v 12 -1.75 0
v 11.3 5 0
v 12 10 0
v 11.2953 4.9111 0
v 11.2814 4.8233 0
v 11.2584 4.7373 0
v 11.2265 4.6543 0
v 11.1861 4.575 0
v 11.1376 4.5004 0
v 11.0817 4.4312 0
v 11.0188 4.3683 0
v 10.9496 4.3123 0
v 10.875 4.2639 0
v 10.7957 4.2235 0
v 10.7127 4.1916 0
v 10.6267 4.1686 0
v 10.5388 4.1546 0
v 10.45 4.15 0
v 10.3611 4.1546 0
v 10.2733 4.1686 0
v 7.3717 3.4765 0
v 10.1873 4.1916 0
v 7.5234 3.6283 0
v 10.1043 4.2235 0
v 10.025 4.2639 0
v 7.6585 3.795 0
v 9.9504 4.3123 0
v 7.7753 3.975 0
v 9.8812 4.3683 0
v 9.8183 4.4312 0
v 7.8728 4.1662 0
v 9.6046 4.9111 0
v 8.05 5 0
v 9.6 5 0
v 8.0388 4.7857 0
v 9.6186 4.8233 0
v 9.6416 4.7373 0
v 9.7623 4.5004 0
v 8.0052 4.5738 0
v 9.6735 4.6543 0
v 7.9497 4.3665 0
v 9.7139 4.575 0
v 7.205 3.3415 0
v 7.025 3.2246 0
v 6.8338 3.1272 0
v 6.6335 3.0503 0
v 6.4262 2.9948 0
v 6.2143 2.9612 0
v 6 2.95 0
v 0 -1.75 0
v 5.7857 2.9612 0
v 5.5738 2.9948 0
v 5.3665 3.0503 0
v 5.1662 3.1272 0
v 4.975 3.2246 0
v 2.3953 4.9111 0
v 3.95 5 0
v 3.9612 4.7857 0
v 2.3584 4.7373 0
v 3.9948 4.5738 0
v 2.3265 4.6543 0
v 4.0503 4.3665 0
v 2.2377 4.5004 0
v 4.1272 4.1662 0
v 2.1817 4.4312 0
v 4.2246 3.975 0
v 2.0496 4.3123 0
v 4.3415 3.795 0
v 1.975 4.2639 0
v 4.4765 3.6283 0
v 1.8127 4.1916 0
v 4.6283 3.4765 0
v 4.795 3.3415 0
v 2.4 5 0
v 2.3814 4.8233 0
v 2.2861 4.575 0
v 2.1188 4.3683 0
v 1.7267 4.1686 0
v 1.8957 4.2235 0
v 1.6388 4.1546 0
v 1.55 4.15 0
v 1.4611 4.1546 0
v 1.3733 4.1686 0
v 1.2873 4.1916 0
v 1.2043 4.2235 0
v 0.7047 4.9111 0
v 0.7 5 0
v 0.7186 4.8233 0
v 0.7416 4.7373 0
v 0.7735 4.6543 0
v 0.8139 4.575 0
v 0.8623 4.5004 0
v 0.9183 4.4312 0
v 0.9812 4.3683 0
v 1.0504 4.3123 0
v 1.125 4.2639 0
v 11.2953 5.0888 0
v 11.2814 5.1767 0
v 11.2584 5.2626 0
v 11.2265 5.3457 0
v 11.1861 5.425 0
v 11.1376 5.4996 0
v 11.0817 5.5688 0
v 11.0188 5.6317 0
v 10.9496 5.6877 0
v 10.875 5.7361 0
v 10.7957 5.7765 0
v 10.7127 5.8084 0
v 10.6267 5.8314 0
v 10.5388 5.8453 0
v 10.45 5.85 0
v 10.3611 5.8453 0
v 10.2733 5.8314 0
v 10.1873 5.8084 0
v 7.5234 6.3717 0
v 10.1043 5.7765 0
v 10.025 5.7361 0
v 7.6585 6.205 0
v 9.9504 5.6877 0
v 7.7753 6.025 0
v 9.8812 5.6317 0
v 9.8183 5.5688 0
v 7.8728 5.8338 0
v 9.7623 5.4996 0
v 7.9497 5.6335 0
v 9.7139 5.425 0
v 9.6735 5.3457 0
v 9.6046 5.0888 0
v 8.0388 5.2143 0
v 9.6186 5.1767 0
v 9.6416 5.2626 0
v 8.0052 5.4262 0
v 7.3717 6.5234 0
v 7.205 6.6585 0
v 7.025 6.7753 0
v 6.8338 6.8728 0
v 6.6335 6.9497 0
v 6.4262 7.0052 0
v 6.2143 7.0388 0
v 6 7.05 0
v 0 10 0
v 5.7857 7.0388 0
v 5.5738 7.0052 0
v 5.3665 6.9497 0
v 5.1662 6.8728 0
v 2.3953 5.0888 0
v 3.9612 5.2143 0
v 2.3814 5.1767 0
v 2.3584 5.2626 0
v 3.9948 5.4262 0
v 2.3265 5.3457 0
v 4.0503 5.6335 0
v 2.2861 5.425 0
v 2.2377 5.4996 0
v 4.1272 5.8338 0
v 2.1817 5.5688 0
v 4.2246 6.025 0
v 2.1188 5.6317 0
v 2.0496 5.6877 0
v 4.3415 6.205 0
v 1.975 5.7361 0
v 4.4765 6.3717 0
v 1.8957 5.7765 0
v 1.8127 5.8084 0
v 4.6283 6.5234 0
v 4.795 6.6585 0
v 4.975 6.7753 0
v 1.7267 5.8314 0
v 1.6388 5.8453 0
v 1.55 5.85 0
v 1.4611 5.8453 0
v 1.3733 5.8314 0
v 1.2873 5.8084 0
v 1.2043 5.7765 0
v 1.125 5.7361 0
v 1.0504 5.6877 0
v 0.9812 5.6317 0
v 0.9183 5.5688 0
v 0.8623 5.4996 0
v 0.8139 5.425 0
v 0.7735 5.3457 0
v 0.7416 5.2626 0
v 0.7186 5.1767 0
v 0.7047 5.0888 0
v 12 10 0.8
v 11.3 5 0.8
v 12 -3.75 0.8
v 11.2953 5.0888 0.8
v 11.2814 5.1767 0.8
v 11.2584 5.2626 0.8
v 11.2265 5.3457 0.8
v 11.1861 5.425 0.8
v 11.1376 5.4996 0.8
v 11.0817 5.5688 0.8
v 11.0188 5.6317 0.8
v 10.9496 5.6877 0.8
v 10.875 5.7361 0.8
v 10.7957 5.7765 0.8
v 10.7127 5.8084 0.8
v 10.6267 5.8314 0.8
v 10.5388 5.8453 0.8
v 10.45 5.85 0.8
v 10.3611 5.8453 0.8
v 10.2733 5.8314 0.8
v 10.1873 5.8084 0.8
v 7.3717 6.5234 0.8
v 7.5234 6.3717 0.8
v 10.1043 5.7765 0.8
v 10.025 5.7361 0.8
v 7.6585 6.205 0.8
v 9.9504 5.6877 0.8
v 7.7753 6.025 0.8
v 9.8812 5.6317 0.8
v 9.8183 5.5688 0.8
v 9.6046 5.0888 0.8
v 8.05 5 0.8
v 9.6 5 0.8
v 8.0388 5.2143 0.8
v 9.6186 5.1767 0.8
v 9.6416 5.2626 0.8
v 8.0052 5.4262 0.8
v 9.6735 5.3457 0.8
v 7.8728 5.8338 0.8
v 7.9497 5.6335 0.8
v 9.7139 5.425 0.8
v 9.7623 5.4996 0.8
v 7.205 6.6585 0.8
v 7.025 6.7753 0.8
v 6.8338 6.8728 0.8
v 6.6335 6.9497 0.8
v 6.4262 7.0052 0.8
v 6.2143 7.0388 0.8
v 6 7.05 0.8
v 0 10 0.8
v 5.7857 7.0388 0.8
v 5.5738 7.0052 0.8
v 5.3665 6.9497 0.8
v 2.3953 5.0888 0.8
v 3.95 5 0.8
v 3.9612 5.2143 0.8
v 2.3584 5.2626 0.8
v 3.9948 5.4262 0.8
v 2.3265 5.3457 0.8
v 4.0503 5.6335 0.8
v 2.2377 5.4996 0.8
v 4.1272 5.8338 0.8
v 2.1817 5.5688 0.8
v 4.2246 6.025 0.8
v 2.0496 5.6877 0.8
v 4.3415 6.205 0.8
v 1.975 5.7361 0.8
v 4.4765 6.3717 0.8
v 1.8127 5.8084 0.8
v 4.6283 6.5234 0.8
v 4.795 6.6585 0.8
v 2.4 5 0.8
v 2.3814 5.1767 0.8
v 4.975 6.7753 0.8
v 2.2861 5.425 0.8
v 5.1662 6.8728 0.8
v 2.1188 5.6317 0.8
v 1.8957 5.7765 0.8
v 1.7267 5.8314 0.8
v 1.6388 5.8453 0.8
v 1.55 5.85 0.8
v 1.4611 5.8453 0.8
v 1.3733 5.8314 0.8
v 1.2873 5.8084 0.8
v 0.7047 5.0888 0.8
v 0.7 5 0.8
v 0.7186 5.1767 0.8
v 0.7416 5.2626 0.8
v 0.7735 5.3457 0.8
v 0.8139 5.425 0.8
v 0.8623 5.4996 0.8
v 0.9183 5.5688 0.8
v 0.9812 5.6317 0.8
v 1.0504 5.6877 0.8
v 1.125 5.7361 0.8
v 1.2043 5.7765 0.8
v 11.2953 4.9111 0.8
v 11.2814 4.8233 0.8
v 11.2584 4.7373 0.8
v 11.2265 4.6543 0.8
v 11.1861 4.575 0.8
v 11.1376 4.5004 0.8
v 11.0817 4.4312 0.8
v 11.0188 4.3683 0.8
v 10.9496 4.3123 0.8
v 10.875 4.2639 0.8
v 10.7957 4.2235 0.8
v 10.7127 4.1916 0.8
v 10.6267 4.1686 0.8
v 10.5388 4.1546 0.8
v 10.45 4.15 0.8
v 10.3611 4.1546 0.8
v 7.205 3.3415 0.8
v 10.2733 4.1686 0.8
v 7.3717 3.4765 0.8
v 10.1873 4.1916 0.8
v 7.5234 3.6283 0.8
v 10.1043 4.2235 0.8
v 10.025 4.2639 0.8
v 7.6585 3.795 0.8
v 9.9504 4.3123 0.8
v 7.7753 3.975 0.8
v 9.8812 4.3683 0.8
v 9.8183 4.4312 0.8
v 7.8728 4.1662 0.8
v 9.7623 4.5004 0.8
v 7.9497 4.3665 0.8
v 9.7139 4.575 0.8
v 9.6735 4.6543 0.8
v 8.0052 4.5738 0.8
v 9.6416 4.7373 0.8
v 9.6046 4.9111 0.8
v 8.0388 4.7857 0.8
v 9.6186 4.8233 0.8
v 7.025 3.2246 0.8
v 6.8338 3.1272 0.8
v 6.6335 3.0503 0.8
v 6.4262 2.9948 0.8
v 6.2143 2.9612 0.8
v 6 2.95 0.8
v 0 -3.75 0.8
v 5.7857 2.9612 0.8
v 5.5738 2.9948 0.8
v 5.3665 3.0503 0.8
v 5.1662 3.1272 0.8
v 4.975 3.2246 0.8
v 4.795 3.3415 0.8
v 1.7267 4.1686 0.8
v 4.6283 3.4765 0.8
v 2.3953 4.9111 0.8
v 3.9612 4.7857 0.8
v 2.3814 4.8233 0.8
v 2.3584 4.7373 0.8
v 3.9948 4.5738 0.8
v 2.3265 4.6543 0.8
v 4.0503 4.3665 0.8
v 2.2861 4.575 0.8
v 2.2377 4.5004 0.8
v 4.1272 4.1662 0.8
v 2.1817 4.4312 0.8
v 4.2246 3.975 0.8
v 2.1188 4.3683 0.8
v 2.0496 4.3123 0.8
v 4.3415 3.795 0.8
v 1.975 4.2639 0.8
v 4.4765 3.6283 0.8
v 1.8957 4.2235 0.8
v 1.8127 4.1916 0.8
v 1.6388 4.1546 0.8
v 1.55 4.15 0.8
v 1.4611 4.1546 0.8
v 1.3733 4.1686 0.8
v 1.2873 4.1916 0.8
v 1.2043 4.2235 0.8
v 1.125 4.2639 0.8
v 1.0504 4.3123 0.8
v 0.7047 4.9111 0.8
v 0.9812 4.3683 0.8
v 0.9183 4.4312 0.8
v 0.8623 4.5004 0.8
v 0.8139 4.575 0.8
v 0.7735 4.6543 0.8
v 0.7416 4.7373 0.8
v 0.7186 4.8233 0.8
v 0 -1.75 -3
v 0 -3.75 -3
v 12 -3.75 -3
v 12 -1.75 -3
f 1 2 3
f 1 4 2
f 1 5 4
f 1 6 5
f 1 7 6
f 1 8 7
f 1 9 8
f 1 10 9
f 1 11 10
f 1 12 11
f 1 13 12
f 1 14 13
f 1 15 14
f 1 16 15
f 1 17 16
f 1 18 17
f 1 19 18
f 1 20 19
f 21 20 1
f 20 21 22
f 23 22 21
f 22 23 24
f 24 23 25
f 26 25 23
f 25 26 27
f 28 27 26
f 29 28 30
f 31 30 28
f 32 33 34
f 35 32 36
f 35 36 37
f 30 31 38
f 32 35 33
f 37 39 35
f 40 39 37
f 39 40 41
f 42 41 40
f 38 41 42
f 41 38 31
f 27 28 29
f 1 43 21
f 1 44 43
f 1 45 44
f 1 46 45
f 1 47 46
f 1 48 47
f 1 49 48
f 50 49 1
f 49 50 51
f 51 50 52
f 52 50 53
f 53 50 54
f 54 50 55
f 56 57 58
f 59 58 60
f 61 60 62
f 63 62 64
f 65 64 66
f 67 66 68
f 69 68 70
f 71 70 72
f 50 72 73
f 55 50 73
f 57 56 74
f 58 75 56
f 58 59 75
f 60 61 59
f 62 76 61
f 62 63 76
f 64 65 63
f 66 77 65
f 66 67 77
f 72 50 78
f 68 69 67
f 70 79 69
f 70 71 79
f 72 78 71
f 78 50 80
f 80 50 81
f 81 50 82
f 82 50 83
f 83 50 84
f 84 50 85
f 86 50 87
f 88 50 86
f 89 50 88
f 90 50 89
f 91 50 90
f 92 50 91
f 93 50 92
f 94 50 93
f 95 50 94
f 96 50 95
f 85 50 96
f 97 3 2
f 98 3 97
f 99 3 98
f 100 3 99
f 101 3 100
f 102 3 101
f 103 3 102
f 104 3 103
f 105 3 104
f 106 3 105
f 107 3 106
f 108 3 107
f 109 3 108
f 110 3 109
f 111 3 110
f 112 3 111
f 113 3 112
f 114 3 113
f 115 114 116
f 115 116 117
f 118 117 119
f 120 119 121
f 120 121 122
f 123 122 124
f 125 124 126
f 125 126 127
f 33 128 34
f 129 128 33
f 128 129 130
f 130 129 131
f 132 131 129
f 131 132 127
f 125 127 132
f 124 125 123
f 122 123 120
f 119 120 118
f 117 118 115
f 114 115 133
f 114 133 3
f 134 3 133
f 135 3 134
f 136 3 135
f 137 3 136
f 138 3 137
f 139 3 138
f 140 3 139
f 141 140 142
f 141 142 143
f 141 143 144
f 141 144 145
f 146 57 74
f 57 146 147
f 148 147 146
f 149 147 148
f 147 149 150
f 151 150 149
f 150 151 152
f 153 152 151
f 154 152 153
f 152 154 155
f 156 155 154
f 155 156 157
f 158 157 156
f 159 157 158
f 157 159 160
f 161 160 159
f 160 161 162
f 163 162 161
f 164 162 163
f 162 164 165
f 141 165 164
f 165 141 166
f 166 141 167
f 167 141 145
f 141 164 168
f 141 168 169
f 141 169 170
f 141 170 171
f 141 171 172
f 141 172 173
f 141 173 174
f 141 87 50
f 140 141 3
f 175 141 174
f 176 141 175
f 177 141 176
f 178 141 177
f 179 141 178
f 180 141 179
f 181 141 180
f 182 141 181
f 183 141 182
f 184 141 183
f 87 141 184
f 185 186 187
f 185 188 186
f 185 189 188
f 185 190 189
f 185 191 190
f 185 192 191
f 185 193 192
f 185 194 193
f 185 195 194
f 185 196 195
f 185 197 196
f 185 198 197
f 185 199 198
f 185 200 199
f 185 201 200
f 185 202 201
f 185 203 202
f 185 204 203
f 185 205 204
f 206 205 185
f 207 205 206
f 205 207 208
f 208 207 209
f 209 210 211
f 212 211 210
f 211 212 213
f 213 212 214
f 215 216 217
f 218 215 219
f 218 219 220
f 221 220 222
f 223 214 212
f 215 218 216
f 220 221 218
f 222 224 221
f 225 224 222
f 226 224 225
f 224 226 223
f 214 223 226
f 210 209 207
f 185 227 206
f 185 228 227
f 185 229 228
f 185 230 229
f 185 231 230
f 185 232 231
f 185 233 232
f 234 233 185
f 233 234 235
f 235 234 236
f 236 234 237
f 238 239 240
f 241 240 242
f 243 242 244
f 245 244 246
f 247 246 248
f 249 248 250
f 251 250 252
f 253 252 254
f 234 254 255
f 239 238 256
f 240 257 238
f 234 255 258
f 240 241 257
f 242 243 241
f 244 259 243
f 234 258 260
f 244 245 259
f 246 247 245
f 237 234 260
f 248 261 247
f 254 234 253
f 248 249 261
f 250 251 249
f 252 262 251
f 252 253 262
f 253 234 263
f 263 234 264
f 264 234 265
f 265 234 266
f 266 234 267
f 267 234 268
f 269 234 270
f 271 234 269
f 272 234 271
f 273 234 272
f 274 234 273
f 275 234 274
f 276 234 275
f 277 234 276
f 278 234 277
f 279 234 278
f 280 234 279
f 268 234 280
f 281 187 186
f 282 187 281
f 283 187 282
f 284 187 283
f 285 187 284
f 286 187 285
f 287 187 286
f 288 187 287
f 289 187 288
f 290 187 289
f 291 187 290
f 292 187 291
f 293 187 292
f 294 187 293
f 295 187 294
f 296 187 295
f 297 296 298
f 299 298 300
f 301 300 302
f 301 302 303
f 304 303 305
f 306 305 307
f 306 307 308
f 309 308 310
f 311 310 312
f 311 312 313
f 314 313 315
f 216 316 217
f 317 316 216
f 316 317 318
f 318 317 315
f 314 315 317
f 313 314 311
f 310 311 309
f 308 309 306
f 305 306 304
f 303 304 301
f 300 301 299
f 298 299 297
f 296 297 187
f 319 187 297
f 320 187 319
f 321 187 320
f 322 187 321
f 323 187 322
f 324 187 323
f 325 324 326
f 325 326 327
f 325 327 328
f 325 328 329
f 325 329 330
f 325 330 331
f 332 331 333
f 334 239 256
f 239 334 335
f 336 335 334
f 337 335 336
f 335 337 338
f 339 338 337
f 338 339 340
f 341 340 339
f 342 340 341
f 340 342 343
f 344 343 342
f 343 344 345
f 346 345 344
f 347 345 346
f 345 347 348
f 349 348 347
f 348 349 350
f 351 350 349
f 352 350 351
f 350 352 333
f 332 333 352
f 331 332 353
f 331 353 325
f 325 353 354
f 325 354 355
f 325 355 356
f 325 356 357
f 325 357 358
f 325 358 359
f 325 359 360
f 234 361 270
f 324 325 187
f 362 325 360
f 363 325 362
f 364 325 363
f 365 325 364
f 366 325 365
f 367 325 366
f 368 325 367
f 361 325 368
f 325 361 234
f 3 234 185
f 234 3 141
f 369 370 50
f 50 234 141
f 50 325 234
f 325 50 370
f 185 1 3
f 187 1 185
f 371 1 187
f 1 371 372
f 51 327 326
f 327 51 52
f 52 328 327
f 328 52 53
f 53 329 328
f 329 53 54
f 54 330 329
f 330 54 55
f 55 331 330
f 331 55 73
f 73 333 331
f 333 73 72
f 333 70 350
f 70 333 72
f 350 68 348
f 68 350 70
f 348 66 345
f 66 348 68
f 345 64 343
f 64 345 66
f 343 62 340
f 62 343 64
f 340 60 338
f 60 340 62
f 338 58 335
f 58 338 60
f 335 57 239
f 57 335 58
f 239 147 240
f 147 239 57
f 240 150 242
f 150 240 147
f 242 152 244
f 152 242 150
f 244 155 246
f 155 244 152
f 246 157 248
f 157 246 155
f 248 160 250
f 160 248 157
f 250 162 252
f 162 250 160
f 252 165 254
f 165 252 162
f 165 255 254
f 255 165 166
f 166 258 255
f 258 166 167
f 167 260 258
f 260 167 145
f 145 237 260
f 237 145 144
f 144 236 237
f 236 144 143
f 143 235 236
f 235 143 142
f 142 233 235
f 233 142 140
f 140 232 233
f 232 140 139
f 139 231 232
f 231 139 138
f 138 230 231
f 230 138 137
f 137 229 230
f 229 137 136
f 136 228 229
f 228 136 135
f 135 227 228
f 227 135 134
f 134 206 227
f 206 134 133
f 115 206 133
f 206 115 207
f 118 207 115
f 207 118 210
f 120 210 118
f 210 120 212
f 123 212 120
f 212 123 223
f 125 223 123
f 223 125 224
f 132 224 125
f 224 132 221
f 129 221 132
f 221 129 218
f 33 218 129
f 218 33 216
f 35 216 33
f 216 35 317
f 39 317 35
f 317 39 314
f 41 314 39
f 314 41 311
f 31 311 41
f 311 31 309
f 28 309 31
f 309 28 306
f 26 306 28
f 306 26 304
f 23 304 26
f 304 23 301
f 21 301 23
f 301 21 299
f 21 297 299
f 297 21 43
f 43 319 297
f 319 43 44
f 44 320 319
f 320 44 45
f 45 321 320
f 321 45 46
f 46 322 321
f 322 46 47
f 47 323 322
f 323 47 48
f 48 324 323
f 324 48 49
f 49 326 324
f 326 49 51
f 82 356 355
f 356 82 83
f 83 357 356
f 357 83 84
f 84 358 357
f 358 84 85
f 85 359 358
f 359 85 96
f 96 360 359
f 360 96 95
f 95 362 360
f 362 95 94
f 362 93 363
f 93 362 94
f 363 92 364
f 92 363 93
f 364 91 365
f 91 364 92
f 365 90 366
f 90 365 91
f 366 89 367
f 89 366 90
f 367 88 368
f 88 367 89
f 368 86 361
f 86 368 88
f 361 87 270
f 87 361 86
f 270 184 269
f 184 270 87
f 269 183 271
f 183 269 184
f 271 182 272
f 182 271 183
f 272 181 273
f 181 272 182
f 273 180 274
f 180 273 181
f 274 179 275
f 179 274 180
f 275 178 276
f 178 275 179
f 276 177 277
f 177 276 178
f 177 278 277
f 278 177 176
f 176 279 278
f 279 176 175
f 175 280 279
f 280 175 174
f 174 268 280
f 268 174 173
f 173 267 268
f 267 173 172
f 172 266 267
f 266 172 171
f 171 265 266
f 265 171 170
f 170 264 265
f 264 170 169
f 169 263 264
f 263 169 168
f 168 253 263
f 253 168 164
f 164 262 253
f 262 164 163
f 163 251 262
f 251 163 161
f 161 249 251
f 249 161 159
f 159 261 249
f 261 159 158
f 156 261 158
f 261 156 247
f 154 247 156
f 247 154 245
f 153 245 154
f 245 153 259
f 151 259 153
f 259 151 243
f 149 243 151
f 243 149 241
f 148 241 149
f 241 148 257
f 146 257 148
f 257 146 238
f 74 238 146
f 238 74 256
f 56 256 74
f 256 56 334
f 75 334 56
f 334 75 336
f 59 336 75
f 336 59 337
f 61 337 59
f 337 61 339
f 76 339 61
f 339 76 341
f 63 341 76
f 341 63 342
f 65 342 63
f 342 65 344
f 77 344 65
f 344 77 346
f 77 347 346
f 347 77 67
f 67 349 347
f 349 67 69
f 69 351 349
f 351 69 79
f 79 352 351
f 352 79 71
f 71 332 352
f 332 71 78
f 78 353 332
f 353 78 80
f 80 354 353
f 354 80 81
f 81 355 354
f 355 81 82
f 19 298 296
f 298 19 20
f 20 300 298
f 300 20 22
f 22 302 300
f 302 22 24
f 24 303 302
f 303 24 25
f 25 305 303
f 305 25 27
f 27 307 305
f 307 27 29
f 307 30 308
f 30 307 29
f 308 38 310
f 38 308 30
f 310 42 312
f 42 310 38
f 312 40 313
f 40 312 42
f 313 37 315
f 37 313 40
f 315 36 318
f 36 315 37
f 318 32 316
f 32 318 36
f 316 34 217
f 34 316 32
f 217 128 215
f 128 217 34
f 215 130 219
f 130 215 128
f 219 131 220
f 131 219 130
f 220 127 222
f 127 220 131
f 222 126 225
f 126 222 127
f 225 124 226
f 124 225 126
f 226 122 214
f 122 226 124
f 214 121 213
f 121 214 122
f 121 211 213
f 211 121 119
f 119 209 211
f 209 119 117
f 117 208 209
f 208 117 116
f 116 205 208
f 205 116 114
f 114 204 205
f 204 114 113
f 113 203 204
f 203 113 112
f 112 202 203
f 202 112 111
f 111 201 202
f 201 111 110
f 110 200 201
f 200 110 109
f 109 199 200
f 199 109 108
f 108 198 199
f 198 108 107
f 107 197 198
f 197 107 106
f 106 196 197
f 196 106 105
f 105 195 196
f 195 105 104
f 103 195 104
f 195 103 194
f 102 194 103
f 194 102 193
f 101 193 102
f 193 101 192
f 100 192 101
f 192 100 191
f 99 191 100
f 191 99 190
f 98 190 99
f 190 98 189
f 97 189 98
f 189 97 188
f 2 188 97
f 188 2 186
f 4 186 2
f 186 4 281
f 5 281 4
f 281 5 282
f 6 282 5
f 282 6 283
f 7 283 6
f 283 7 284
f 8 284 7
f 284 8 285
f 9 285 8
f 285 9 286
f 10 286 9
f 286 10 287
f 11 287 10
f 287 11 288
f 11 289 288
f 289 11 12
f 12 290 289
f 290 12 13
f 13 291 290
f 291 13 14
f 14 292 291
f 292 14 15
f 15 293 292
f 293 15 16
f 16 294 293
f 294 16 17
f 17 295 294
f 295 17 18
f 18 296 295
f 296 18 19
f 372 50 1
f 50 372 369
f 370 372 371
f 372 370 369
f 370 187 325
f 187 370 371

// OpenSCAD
x = 12.0;
y = 10.0;

$fn = 60;

hole = [x/2, y/2];

m_holes = [ [1.55,y/2], [12-1.55,y/2] ];
m_hole_d = 1.6 + 0.1;

hole_h = 0.7 + 0.1;
hole_d = 4.1;

pcb_h = 1.75;
//pcb_h = 1.56;

base_th = 2;

linear_extrude(height=hole_h) difference() {
	square([x,y]);
	translate(hole) circle(d=hole_d);
	
	for(m = m_holes) translate(m) circle(d=m_hole_d);
}

linear_extrude(height=hole_h) {
	translate([0,-pcb_h]) square([ x, pcb_h ]);
}

l = 3;
translate([0,0,-l]) 
	#linear_extrude(height=l + hole_h) {
		translate([0,-pcb_h-base_th]) square([x, base_th]);
	}
